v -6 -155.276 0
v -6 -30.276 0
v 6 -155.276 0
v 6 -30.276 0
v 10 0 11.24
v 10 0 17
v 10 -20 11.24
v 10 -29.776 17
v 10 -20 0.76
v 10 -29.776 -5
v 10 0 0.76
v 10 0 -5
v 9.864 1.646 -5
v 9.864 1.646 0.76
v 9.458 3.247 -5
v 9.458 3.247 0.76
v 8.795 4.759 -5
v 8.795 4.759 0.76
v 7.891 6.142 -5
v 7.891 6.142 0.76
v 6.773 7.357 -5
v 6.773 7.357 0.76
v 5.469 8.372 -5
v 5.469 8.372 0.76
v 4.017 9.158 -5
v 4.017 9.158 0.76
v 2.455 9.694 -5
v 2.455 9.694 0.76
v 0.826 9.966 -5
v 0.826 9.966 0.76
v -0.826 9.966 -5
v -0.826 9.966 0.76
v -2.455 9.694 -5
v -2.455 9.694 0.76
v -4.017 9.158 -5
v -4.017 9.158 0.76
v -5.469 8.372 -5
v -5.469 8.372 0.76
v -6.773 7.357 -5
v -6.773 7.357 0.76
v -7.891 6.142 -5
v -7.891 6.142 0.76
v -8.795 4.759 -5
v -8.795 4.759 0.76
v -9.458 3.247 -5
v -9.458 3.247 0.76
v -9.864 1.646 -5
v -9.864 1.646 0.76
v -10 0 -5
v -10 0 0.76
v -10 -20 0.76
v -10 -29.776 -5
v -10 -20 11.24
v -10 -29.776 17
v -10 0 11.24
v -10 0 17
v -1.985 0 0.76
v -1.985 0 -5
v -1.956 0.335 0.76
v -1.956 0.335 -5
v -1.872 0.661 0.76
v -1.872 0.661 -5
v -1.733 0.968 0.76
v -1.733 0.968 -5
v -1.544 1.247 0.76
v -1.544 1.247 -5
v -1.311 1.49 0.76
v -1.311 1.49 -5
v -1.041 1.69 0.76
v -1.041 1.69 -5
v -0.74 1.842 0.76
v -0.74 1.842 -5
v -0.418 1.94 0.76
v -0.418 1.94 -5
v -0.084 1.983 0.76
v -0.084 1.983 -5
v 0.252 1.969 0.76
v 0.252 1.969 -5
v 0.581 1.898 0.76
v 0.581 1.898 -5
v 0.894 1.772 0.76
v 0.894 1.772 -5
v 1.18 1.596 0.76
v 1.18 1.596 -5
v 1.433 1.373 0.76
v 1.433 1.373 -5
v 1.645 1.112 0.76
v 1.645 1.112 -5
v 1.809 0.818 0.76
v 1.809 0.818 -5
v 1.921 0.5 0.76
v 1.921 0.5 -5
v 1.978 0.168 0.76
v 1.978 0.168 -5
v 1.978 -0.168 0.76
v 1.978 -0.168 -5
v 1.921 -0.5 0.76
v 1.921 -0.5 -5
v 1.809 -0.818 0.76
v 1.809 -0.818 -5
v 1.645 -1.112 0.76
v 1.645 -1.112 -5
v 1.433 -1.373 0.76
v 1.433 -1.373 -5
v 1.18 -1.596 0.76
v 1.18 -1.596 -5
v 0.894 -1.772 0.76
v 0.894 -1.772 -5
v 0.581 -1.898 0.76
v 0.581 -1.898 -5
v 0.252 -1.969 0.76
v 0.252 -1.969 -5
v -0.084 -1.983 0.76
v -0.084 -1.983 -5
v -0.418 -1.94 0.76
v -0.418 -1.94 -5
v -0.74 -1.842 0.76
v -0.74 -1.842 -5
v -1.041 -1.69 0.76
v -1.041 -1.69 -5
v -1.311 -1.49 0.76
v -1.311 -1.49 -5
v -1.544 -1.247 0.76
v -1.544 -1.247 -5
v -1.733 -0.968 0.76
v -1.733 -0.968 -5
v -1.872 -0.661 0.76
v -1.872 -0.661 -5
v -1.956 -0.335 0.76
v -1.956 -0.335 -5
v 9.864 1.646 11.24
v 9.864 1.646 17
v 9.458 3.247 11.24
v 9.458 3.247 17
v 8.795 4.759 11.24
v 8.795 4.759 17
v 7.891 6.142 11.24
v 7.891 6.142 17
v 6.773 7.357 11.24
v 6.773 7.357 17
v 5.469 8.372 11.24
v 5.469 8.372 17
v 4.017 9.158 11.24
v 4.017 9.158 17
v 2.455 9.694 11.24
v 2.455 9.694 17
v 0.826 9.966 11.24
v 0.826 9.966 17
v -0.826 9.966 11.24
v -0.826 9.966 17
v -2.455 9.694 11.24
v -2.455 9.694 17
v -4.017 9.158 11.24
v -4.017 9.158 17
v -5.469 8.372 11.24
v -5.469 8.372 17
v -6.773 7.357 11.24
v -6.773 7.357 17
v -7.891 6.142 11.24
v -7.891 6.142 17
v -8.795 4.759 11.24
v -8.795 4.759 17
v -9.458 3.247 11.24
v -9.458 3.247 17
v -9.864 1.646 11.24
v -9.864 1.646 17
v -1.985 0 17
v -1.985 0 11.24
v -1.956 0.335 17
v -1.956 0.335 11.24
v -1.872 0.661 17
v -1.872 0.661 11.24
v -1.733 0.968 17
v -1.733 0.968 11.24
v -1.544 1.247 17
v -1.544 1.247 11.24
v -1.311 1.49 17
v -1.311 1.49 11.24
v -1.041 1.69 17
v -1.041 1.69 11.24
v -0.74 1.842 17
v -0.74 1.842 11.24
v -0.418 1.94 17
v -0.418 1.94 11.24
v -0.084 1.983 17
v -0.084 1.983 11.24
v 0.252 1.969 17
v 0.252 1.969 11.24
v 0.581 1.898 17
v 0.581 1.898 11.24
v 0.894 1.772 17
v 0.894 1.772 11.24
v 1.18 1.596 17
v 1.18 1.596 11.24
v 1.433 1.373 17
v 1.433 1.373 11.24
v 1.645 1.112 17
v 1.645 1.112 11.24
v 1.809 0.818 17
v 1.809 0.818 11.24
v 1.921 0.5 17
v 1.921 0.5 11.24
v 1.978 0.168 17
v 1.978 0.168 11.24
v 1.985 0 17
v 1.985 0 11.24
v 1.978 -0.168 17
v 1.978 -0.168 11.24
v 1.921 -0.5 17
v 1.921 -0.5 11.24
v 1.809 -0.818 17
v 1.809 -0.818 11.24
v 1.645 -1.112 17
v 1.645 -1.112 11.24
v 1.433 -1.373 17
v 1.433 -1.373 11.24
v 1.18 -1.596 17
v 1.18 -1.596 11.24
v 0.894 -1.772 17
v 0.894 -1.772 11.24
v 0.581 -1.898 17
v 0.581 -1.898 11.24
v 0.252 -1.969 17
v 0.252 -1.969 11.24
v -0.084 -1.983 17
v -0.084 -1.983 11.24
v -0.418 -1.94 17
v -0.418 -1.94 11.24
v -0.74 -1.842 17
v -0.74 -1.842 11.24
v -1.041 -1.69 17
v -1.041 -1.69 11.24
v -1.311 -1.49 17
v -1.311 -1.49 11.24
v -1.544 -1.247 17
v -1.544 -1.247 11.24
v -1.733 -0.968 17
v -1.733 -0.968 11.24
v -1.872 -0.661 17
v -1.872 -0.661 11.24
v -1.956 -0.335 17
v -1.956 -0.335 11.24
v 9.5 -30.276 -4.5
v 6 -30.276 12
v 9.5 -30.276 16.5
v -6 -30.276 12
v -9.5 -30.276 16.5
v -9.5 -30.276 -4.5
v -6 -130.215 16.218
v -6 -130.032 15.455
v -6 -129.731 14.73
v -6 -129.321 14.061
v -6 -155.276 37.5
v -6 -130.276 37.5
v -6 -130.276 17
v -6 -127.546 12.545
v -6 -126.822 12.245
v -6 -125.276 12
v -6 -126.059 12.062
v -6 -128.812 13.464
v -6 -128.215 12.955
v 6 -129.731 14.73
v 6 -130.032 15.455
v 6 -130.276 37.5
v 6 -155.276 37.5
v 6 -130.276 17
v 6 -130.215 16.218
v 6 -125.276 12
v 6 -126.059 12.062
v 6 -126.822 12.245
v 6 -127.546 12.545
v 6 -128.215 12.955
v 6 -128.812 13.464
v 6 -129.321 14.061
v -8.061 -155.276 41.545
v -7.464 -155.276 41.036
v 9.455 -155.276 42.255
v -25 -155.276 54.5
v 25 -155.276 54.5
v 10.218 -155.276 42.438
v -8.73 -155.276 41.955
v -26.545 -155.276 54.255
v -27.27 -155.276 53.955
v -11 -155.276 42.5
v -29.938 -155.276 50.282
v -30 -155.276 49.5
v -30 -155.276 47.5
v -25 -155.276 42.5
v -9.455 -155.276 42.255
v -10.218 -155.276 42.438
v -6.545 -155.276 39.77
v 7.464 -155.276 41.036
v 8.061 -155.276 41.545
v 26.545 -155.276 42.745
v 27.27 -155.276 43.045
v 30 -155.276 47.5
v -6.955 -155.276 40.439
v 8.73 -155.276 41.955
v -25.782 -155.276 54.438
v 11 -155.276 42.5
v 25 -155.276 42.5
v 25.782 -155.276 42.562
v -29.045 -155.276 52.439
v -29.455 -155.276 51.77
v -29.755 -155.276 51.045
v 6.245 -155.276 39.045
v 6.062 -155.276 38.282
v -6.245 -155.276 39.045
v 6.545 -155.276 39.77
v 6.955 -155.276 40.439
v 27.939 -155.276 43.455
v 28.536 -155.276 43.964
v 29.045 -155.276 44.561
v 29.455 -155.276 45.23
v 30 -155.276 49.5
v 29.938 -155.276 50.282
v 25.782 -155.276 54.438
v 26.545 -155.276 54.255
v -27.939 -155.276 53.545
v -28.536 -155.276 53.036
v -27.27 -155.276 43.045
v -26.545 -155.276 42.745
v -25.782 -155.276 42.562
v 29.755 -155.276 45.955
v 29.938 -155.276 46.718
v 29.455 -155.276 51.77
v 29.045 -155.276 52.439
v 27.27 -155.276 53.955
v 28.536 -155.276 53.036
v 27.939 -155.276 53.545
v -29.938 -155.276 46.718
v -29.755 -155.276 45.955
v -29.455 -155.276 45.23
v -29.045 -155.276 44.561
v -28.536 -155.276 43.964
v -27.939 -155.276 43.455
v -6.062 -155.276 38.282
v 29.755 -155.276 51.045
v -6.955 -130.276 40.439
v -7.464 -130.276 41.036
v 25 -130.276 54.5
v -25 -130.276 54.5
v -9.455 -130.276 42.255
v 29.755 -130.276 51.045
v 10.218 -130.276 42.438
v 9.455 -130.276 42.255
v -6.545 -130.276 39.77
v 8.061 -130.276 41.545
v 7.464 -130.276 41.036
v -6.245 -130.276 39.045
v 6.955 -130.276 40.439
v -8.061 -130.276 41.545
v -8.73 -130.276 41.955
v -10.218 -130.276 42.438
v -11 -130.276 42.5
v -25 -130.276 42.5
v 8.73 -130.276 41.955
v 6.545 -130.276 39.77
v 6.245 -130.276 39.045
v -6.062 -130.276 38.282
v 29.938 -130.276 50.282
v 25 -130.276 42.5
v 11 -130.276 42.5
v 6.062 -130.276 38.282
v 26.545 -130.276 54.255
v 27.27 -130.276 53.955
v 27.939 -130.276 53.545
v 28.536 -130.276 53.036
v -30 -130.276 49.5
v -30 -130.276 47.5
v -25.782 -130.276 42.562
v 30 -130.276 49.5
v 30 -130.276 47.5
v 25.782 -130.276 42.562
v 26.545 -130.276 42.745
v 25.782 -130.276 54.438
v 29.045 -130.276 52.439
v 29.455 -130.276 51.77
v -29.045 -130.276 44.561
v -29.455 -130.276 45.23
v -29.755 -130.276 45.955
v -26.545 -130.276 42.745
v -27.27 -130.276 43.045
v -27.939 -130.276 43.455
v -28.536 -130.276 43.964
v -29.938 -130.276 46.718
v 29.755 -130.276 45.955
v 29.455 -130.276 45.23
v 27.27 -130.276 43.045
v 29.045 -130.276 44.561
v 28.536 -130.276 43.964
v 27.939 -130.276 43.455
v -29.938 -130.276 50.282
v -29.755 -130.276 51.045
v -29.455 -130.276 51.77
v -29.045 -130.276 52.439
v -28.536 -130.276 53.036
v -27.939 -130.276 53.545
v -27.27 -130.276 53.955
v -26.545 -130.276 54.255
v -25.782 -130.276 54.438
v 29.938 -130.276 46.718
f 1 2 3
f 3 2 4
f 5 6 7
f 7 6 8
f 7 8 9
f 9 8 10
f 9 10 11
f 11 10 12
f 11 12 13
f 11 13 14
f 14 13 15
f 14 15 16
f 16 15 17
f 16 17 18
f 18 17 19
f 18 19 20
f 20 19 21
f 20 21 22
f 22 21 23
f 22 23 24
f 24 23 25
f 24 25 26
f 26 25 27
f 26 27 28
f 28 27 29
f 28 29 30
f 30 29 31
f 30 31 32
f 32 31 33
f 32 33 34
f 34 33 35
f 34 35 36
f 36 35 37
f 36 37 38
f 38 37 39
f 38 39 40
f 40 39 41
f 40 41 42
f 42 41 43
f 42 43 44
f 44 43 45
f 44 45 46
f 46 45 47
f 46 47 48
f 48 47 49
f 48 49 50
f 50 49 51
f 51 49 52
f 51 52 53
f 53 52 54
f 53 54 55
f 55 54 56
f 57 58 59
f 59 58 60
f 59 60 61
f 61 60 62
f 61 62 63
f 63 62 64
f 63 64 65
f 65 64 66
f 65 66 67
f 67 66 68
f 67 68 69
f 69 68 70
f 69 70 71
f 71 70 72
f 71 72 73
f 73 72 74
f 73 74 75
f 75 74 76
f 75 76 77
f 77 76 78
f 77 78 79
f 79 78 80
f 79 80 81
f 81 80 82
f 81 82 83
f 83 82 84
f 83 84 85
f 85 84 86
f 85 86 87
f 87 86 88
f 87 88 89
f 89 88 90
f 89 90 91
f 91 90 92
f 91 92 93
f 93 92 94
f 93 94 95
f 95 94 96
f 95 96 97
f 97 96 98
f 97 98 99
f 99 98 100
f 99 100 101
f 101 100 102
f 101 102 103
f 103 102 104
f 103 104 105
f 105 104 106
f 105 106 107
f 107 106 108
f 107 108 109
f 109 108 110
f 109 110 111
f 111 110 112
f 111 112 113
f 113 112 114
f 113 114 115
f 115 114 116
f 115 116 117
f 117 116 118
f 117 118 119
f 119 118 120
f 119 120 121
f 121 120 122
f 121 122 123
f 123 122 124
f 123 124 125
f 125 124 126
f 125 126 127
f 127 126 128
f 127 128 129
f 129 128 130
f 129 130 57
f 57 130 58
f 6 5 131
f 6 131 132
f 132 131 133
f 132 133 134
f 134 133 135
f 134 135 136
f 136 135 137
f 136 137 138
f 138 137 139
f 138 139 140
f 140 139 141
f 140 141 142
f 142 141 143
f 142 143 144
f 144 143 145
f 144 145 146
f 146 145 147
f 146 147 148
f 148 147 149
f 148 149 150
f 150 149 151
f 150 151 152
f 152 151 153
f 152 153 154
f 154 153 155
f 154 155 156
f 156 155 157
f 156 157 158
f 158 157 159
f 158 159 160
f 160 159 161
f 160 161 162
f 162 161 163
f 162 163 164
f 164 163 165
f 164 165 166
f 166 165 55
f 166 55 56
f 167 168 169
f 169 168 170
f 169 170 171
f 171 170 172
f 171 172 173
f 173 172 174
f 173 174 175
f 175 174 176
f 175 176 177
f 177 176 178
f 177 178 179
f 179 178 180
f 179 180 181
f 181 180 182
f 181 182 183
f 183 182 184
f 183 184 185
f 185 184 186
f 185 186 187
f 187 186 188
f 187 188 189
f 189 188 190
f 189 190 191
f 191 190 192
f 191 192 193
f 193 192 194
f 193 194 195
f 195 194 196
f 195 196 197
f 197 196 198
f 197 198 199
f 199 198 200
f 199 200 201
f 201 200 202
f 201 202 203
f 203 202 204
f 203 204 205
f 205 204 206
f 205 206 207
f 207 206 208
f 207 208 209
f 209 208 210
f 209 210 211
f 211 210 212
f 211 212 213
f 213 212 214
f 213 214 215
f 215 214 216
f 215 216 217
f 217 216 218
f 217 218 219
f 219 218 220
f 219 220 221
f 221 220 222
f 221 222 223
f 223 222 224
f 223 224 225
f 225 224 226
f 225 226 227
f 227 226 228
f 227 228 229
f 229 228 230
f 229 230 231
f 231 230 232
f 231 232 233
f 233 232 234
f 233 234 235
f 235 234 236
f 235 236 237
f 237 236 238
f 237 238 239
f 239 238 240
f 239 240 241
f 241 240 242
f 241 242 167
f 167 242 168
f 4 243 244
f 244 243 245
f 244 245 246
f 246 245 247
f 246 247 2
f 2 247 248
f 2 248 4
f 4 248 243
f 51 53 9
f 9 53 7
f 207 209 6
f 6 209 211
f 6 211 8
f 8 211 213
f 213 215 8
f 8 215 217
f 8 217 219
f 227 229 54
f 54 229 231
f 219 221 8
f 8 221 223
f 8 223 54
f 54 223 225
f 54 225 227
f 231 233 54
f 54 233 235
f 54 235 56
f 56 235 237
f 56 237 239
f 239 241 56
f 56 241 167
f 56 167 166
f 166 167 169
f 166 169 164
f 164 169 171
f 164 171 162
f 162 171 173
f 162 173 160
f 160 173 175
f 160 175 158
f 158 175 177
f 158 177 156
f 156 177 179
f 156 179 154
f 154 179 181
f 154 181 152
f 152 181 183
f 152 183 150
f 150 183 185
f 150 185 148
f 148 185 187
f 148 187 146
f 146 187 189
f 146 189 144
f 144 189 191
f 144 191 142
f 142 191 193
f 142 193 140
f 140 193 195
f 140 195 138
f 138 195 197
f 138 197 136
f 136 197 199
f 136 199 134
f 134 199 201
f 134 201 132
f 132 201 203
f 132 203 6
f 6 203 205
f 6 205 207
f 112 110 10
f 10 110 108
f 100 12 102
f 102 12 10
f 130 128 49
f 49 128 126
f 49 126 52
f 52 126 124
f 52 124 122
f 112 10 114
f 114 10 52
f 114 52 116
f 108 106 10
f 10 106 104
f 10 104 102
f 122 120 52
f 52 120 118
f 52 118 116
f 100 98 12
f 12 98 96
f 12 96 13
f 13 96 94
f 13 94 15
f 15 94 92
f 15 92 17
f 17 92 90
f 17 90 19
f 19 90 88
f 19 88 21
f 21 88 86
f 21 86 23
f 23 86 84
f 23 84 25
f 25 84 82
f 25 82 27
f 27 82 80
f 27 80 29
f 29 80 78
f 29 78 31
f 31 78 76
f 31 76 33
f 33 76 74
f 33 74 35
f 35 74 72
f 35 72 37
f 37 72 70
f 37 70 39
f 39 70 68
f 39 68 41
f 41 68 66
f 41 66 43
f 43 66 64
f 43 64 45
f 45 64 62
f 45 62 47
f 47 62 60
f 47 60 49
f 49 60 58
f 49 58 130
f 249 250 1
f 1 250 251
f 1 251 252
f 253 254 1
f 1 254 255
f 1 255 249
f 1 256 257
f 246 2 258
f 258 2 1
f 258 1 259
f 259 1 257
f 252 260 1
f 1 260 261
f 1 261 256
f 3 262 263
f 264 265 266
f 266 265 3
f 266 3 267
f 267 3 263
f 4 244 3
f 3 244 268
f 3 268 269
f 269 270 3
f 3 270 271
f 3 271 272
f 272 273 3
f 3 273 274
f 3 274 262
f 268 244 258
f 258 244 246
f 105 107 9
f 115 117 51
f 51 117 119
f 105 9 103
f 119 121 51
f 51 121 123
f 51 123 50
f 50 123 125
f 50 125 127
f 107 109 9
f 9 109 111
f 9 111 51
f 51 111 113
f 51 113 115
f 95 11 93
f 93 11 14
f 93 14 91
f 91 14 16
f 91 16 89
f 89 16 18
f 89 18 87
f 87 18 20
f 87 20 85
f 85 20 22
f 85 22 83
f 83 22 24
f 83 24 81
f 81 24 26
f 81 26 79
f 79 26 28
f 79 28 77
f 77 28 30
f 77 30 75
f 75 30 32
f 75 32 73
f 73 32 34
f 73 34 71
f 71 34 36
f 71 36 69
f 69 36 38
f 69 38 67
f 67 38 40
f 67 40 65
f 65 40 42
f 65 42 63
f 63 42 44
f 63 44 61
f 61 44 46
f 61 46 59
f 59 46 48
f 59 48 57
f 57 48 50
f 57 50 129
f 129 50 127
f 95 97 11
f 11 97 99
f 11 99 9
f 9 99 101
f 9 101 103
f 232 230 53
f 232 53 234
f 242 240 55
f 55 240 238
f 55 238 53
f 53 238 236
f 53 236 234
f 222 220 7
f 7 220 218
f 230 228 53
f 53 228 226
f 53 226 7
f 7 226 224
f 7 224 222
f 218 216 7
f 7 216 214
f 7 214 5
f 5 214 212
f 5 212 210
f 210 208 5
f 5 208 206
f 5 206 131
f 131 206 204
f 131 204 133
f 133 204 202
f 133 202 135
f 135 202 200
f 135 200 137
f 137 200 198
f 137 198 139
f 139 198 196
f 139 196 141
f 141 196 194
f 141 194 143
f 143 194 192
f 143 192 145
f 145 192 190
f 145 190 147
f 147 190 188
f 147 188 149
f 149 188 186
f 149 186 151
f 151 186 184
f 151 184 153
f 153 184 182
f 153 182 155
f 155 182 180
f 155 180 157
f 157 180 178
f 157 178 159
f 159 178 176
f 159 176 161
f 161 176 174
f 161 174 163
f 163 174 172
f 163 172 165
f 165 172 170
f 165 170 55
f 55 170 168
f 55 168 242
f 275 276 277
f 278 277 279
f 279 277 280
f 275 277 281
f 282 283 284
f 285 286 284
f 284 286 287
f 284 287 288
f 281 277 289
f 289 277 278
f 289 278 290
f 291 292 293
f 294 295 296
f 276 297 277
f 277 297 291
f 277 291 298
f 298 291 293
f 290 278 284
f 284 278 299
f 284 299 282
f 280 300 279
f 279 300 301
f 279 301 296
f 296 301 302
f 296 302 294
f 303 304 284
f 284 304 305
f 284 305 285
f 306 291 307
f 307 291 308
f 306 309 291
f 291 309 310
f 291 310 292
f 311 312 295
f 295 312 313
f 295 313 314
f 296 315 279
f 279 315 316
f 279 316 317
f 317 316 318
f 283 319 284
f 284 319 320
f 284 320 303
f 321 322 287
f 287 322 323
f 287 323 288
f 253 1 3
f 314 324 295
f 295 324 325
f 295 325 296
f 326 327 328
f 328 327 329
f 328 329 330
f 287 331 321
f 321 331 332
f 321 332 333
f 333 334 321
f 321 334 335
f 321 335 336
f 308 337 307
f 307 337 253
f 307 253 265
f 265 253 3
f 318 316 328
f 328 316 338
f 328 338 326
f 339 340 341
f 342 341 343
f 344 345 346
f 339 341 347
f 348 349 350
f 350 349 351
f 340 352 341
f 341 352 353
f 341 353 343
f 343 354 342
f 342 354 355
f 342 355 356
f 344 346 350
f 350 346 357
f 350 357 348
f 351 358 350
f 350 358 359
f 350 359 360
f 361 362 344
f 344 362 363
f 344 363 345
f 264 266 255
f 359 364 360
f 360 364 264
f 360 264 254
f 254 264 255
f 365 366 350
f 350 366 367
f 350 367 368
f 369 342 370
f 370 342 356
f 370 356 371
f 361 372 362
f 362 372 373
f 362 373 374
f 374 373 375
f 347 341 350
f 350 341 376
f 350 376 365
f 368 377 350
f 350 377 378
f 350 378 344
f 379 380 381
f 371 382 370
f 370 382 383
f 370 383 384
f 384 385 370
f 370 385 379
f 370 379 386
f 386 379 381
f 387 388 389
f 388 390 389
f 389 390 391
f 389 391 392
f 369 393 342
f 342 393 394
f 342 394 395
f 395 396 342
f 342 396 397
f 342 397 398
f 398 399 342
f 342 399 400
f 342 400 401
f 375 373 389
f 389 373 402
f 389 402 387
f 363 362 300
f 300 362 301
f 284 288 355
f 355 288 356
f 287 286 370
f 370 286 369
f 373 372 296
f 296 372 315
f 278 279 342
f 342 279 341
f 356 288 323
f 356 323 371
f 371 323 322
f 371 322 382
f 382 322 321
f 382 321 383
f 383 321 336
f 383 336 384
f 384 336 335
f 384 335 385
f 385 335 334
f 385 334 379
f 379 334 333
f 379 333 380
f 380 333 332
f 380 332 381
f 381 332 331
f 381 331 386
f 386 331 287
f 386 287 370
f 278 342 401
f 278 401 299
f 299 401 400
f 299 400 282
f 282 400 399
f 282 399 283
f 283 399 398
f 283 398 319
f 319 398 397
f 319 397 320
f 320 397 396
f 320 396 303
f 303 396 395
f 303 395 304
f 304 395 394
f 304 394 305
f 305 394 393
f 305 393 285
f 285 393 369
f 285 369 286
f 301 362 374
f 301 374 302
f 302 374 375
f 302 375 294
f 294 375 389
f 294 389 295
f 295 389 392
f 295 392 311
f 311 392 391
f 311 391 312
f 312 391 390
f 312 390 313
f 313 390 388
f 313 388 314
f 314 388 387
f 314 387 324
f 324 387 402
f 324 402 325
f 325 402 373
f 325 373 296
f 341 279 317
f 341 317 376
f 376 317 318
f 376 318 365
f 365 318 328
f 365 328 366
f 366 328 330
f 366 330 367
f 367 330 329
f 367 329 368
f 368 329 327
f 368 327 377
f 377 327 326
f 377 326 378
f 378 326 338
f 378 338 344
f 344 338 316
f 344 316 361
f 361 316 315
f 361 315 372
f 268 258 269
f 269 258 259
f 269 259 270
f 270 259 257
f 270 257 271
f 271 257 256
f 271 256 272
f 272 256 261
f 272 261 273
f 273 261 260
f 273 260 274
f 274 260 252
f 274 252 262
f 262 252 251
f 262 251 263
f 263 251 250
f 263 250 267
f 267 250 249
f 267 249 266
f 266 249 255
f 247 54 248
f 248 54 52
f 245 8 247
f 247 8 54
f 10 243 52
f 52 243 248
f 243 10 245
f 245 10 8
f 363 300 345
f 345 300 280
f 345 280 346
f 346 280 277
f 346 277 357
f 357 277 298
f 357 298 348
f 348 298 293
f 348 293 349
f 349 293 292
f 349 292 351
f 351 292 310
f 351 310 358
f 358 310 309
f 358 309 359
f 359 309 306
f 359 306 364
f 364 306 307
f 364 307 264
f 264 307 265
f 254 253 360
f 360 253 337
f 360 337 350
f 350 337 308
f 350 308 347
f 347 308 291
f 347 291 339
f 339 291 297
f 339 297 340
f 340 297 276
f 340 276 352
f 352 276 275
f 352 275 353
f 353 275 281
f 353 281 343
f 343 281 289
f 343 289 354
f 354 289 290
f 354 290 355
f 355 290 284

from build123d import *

# Parameters (mm, degrees)
SKETCH_1_R                = 1.985
EXTRUDE_1_DEPTH           = 12
CUT_EXTRUDE_1_DEPTH       = 21
CUT_EXTRUDE_6_DEPTH       = 21
SKETCH_12_R               = 1.985
EXTRUDE_11_DEPTH          = 5
SKETCH_13_R               = 1.985
EXTRUDE_12_DEPTH          = 5
SKETCH_14_W               = 2.04
SKETCH_14_H               = 20
CUT_EXTRUDE_7_DEPTH       = 21
SKETCH_15_W               = 6
SKETCH_15_H               = 6
EXTRUDE_13_DEPTH          = 100
EXTRUDE_14_DEPTH          = 25
EXTRUDE_19_DEPTH          = 7
SKETCH_31_W               = 5
SKETCH_31_H               = 31
EXTRUDE_20_DEPTH          = 45
EXTRUDE_21_DEPTH          = 31
CUT_EXTRUDE_16_DEPTH      = 60
SKETCH_38_W               = 0.2
SKETCH_38_H               = 20
CUT_EXTRUDE_18_DEPTH      = 187
FILLET_2_R                = 10
EXTRUDE_22_DEPTH          = 12
EXTRUDE_23_DEPTH          = 12
SKETCH_46_W               = 12
SKETCH_46_H               = 6
EXTRUDE_24_DEPTH          = 72
SKETCH_45_W               = 12
SKETCH_45_H               = 12
EXTRUDE_26_DEPTH          = 34.5
CUT_EXTRUDE_22_DEPTH      = 56
CUT_EXTRUDE_22_DEPTH_BACK = 183
SKETCH_52_W               = 276.860759989
SKETCH_52_H               = 117.184268482
CUT_EXTRUDE_24_DEPTH      = 26
EXTRUDE_27_DEPTH          = 12
CUT_EXTRUDE_27_DEPTH      = 12
SKETCH_59_W               = 12
SKETCH_59_H               = 29.920197086
EXTRUDE_29_DEPTH          = 25
SKETCH_60_W               = 24
SKETCH_60_H               = 12
EXTRUDE_30_DEPTH          = 12
EXTRUDE_30_DEPTH_BACK     = 25
SKETCH_61_W               = 281.096086155
SKETCH_61_H               = 164.782481761
CUT_EXTRUDE_30_DEPTH      = 50
CUT_EXTRUDE_30_DEPTH_BACK = 58
CUT_EXTRUDE_34_DEPTH      = 25
CUT_EXTRUDE_34_DEPTH_BACK = 37
CUT_EXTRUDE_36_DEPTH      = 26
SKETCH_70_W               = 12
SKETCH_70_H               = 25
CUT_EXTRUDE_37_DEPTH      = 4
SKETCH_71_W               = 24
SKETCH_71_H               = 25
SKETCH_71_W_2             = 12
EXTRUDE_31_DEPTH          = 12
FILLET_3_R                = 5
FILLET_4_R                = 5
CHAMFER_1_SIZE            = 0.5
FILLET_7_R                = 5


with BuildPart() as part:
    # 草圖1 → 填料-伸長1 (new body)
    with BuildSketch(Plane.XY):
        with BuildLine():
            Line((-10, 0), (-10, -30.276417548))
            Line((-10, -30.276417548), (10, -30.276417548))
            Line((10, -30.276417548), (10, 0))
            ThreePointArc((10, 0), (0, 10), (-10, 0))
        make_face()
        Circle(SKETCH_1_R, mode=Mode.SUBTRACT)
    extrude(amount=EXTRUDE_1_DEPTH)

    # 草圖2 → 除料-伸長1 (cut, through all)
    with BuildSketch(Plane(origin=(10, 0, 0), x_dir=(0, 0, -1), z_dir=(1, 0, 0))):
        Polygon((-9, 0), (-6, 0), (-3, 0), (-3, 15.780779257), (-9, 15.780779257), align=None)
        Polygon((-3, 0), (-6, 0), (-9, 0), (-8.60053373, -20), (-3, -20), align=None)
    extrude(amount=-CUT_EXTRUDE_1_DEPTH, mode=Mode.SUBTRACT)

    # 草圖11 → 除料-伸長6 (cut, through all)
    with BuildSketch(Plane(origin=(10, 0, 0), x_dir=(0, 0, -1), z_dir=(1, 0, 0))):
        Polygon((-9, 0), (-9, -20), (-8.60053373, -20), align=None)
    extrude(amount=-CUT_EXTRUDE_6_DEPTH, mode=Mode.SUBTRACT)

    # 草圖12 → 填料-伸長11 (add)
    with BuildSketch(Plane.XY.offset(12)):
        with BuildLine():
            ThreePointArc((10, 0), (0, 10), (-10, 0))
            ThreePointArc((-10, 0), (0, -10), (10, 0))
        make_face()
        Circle(SKETCH_12_R, mode=Mode.SUBTRACT)
        with BuildLine():
            ThreePointArc((10, 0), (0, -10), (-10, 0))
            Line((-10, 0), (-10, -30.276417548))
            Line((-10, -30.276417548), (10, -30.276417548))
            Line((10, -30.276417548), (10, 0))
        make_face()
    extrude(amount=EXTRUDE_11_DEPTH)

    # 草圖13 → 填料-伸長12 (add)
    with BuildSketch(Plane(origin=(0, 0, 0), x_dir=(-1, 0, 0), z_dir=(0, 0, -1))):
        with BuildLine():
            ThreePointArc((10, 0), (0, 10), (-10, 0))
            ThreePointArc((-10, 0), (0, -10), (10, 0))
        make_face()
        Circle(SKETCH_13_R, mode=Mode.SUBTRACT)
        with BuildLine():
            ThreePointArc((10, 0), (0, -10), (-10, 0))
            Line((-10, 0), (-10, -30.276417548))
            Line((-10, -30.276417548), (10, -30.276417548))
            Line((10, -30.276417548), (10, 0))
        make_face()
    extrude(amount=EXTRUDE_12_DEPTH)

    # 草圖14 → 除料-伸長7 (cut, through all)
    with BuildSketch(Plane.ZY.offset(10)):
        Polygon((3, 0), (3, -20), (9, -20), (9, 0), (11.04, 0), (11.04, 10), (3, 10), (0.96, 10), (0.96, 0), align=None)
        with Locations((1.98, -10)):
            Rectangle(SKETCH_14_W, SKETCH_14_H)
        with Locations((10.02, -10)):
            Rectangle(SKETCH_14_W, SKETCH_14_H)
    extrude(amount=-CUT_EXTRUDE_7_DEPTH, mode=Mode.SUBTRACT)

    # 草圖15 → 填料-伸長13 (add)
    with BuildSketch(Plane.XZ.offset(30.276417548)):
        with Locations((3, 9)):
            Rectangle(SKETCH_15_W, SKETCH_15_H)
        with Locations((-3, 9)):
            Rectangle(SKETCH_15_W, SKETCH_15_H)
        with Locations((3, 3)):
            Rectangle(SKETCH_15_W, SKETCH_15_H)
        with Locations((-3, 3)):
            Rectangle(SKETCH_15_W, SKETCH_15_H)
    extrude(amount=EXTRUDE_13_DEPTH)

    # 草圖16 → 填料-伸長14 (add)
    with BuildSketch(Plane.XZ.offset(130.276417548)):
        Polygon((176, -54), (176, 6), (176, 96), (-61, 96), (-61, 6), (-61, -54), align=None)
    extrude(amount=EXTRUDE_14_DEPTH)

    # 草圖30 → 填料-伸長19 (add)
    with BuildSketch(Plane(origin=(0, -130.276417548, 0), x_dir=(1, 0, 0), z_dir=(0, 1, 0))):
        Polygon((119, -68), (139, -68), (139, -37), (129, -37), (119, -37), align=None)
    extrude(amount=EXTRUDE_19_DEPTH)

    # 草圖31 → 填料-伸長20 (add)
    with BuildSketch(Plane(origin=(0, -130.276417548, 0), x_dir=(1, 0, 0), z_dir=(0, 1, 0))):
        Polygon((119, -68), (114, -68), (114, -37.129725066), (119, -37), align=None)
        with Locations((141.5, -52.5)):
            Rectangle(SKETCH_31_W, SKETCH_31_H)
    extrude(amount=EXTRUDE_20_DEPTH)

    # 草圖33 → 填料-伸長21 (add)
    with BuildSketch(Plane.XY.offset(68)):
        Polygon((159, -130.276417548), (144, -130.276417548), (144, -85.276417548), align=None)
        Polygon((114, -85.276417548), (99, -130.276417548), (114, -130.276417548), align=None)
    extrude(amount=-EXTRUDE_21_DEPTH)

    # 草圖35 → 除料-伸長16 (cut, through all)
    with BuildSketch(Plane(origin=(0, 0, 37), x_dir=(-1, 0, 0), z_dir=(0, 0, -1))):
        with BuildLine():
            ThreePointArc((-132.95, -126.776417548), (-134.95, -124.776417548), (-136.95, -126.776417548))
            Line((-136.95, -126.776417548), (-132.95, -126.776417548))
        make_face()
        with BuildLine():
            Line((-132.95, -126.776417548), (-136.95, -126.776417548))
            ThreePointArc((-136.95, -126.776417548), (-134.95, -128.776417548), (-132.95, -126.776417548))
        make_face()
        with BuildLine():
            ThreePointArc((-121.05, -126.776417548), (-123.05, -124.776417548), (-125.05, -126.776417548))
            Line((-125.05, -126.776417548), (-121.05, -126.776417548))
        make_face()
        with BuildLine():
            Line((-121.05, -126.776417548), (-125.05, -126.776417548))
            ThreePointArc((-125.05, -126.776417548), (-123.05, -128.776417548), (-121.05, -126.776417548))
        make_face()
    extrude(amount=-CUT_EXTRUDE_16_DEPTH, mode=Mode.SUBTRACT)

    # 草圖38 → 除料-伸長18 (cut, through all)
    with BuildSketch(Plane.ZY.offset(10)):
        Polygon((11.04, 10), (0.96, 10), (0.76, 10), (0.76, 0), (0.96, 0), (0.96, -20), (11.04, -20), (11.04, 0), (11.24, 0), (11.24, 10), align=None)
        with Locations((0.86, -10)):
            Rectangle(SKETCH_38_W, SKETCH_38_H)
        with Locations((11.14, -10)):
            Rectangle(SKETCH_38_W, SKETCH_38_H)
    extrude(amount=-CUT_EXTRUDE_18_DEPTH, mode=Mode.SUBTRACT)

    # 圓角2
    fillet_2_edges = [part.edges().sort_by_distance(p)[0] for p in [
        (-61, -142.776417548, 96),
        (-61, -142.776417548, -54),
        (176, -142.776417548, -54),
        (176, -142.776417548, 96),
    ]]
    fillet(fillet_2_edges, radius=FILLET_2_R)

    # 草圖39 → 填料-伸長22 (add)
    with BuildSketch(Plane(origin=(0, 0, 0), x_dir=(-1, 0, 0), z_dir=(0, 0, -1))):
        Polygon((-6, -80.276417548), (-16, -130.276417548), (-6, -130.276417548), align=None)
        Polygon((6, -80.276417548), (16, -130.276417548), (6, -130.276417548), align=None)
    extrude(amount=-EXTRUDE_22_DEPTH)

    # 草圖40 → 填料-伸長23 (add)
    with BuildSketch(Plane(origin=(6, 0, 0), x_dir=(0, 0, -1), z_dir=(1, 0, 0))):
        Polygon((-12, -80.276417548), (-22, -130.276417548), (-12, -130.276417548), align=None)
        Polygon((0, -80.276417548), (11.303196885, -130.276417548), (0, -130.276417548), align=None)
    extrude(amount=-EXTRUDE_23_DEPTH)

    # 草圖46 → 填料-伸長24 (add)
    with BuildSketch(Plane(origin=(0, -130.276417548, 0), x_dir=(1, 0, 0), z_dir=(0, 1, 0))):
        with Locations((0, -55.5)):
            Rectangle(SKETCH_46_W, SKETCH_46_H)
        with Locations((0, -49.5)):
            Rectangle(SKETCH_46_W, SKETCH_46_H)
    extrude(amount=EXTRUDE_24_DEPTH)

    # 草圖45 → 填料-伸長26 (add)
    with BuildSketch(Plane.XY.offset(12)):
        with Locations((0, -64.276417548)):
            Rectangle(SKETCH_45_W, SKETCH_45_H)
    extrude(amount=EXTRUDE_26_DEPTH)

    # 草圖50 → 除料-伸長22 (cut, two sides)
    with BuildSketch(Plane.ZY.offset(6)) as cut_extrude_22_sk:
        Polygon((12, -70.276417548), (0, -70.276417548), (-67.39172142, -119.054967007), (-58.508131327, -164.361276479), (22, -164.361276479), (22, -130.276417548), (21.222089752, -86.407773417), align=None)
    extrude(amount=CUT_EXTRUDE_22_DEPTH, mode=Mode.SUBTRACT)
    extrude(cut_extrude_22_sk.sketch, amount=-CUT_EXTRUDE_22_DEPTH_BACK, mode=Mode.SUBTRACT)

    # 草圖52 → 除料-伸長24 (cut, through all)
    with BuildSketch(Plane(origin=(0, -130.276417548, 0), x_dir=(1, 0, 0), z_dir=(0, 1, 0))):
        with Locations((58.121400767, -52.5)):
            Rectangle(SKETCH_52_W, SKETCH_52_H)
        with BuildLine():
            Line((-17.31105843, -29.920197086), (148.30684395, -29.920197086))
            ThreePointArc((148.30684395, -29.920197086), (170.886646864, -52.5), (148.30684395, -75.079802914))
            Line((148.30684395, -75.079802914), (-17.31105843, -75.079802914))
            ThreePointArc((-17.31105843, -75.079802914), (-39.890861345, -52.5), (-17.31105843, -29.920197086))
        make_face(mode=Mode.SUBTRACT)
    extrude(amount=-CUT_EXTRUDE_24_DEPTH, mode=Mode.SUBTRACT)

    # 草圖57 → 填料-伸長27 (add)
    with BuildSketch(Plane.ZY.offset(6)):
        Polygon((12, -70.276417548), (0, -70.276417548), (0, -130.276417548), (46.5, -130.276417548), (46.5, -118.276417548), (45.651807849, -118.276417548), (12, -118.276417548), align=None)
    extrude(amount=-EXTRUDE_27_DEPTH)

    # 草圖58 → 除料-伸長27 (cut)
    with BuildSketch(Plane.ZY.offset(6)):
        Polygon((12, -50.353469845), (12, -118.276417548), (97.717444729, -118.276417548), (103.225359423, -26.791834768), align=None)
    extrude(amount=-CUT_EXTRUDE_27_DEPTH, mode=Mode.SUBTRACT)

    # 草圖59 → 填料-伸長29 (add)
    with BuildSketch(Plane.XZ.offset(130.276417548)):
        with Locations((0, 14.960098543)):
            Rectangle(SKETCH_59_W, SKETCH_59_H)
    extrude(amount=EXTRUDE_29_DEPTH)

    # 草圖60 → 填料-伸長30 (add, two sides)
    with BuildSketch(Plane(origin=(0, -130.276417548, 0), x_dir=(1, 0, 0), z_dir=(0, 1, 0))) as extrude_30_sk:
        with Locations((18, -52.5)):
            Rectangle(SKETCH_60_W, SKETCH_60_H)
        with Locations((-18, -52.5)):
            Rectangle(SKETCH_60_W, SKETCH_60_H)
    extrude(amount=EXTRUDE_30_DEPTH)
    extrude(extrude_30_sk.sketch, amount=-EXTRUDE_30_DEPTH_BACK)

    # 草圖61 → 除料-伸長30 (cut, two sides)
    with BuildSketch(Plane(origin=(0, -130.276417548, 0), x_dir=(1, 0, 0), z_dir=(0, 1, 0))) as cut_extrude_30_sk:
        with Locations((53.510433176, -39.675707669)):
            Rectangle(SKETCH_61_W, SKETCH_61_H)
        Polygon((6, -29.920197086), (6, -46.5), (30, -46.5), (30, -58.5), (-30, -58.5), (-30, -46.5), (-6, -46.5), (-6, -29.920197086), (-44.589128485, 5.230499952), (-9.133666374, 30.61836171), (-3.443283566, 30.61836171), (36.57596573, 16.820537818), align=None, mode=Mode.SUBTRACT)
    extrude(amount=CUT_EXTRUDE_30_DEPTH, mode=Mode.SUBTRACT)
    extrude(cut_extrude_30_sk.sketch, amount=-CUT_EXTRUDE_30_DEPTH_BACK, mode=Mode.SUBTRACT)

    # 草圖64 → 除料-伸長34 (cut, two sides)
    with BuildSketch(Plane.ZY.offset(6)) as cut_extrude_34_sk:
        Polygon((12, -130.276417548), (58.5, -130.276417548), (58.5, -118.447183966), (58.5, -114.238678803), (12, -115.089037544), align=None)
    extrude(amount=CUT_EXTRUDE_34_DEPTH, mode=Mode.SUBTRACT)
    extrude(cut_extrude_34_sk.sketch, amount=-CUT_EXTRUDE_34_DEPTH_BACK, mode=Mode.SUBTRACT)

    # 草圖69 → 除料-伸長36 (cut, through all)
    with BuildSketch(Plane(origin=(0, -130.276417548, 0), x_dir=(1, 0, 0), z_dir=(0, 1, 0))):
        Polygon((-6, -46.5), (6, -46.5), (66.848936529, -34.461710071), (66.848936529, -79.240565932), (-96.240370082, -76.176749478), (-86.106207966, -40.480855035), (-50.518801466, -30.455180862), align=None)
    extrude(amount=-CUT_EXTRUDE_36_DEPTH, mode=Mode.SUBTRACT)

    # 草圖70 → 除料-伸長37 (cut)
    with BuildSketch(Plane.XY.offset(46.5)):
        with Locations((0, -142.776417548)):
            Rectangle(SKETCH_70_W, SKETCH_70_H)
    extrude(amount=-CUT_EXTRUDE_37_DEPTH, mode=Mode.SUBTRACT)

    # 草圖71 → 填料-伸長31 (add)
    with BuildSketch(Plane.XY.offset(42.5)):
        with Locations((-18, -142.776417548)):
            Rectangle(SKETCH_71_W, SKETCH_71_H)
        with Locations((0, -142.776417548)):
            Rectangle(SKETCH_71_W_2, SKETCH_71_H)
        with Locations((18, -142.776417548)):
            Rectangle(SKETCH_71_W, SKETCH_71_H)
    extrude(amount=EXTRUDE_31_DEPTH)

    # 圓角3
    fillet_3_edges = [part.edges().sort_by_distance(p)[0] for p in [
        (30, -142.776417548, 42.5),
        (-30, -142.776417548, 42.5),
        (-30, -142.776417548, 54.5),
        (30, -142.776417548, 54.5),
    ]]
    fillet(fillet_3_edges, radius=FILLET_3_R)

    # 圓角4
    fillet_4_edges = [part.edges().sort_by_distance(p)[0] for p in [
        (0, -130.276417548, 12),
    ]]
    fillet(fillet_4_edges, radius=FILLET_4_R)

    # 導角1
    chamfer_1_edges = [part.edges().sort_by_distance(p)[0] for p in [
        (10, -30.276417548, 6),
        (-10, -30.276417548, 6),
        (0, -30.276417548, 17),
        (0, -30.276417548, -5),
    ]]
    chamfer(chamfer_1_edges, length=CHAMFER_1_SIZE)

    # 圓角7
    fillet_7_edges = [part.edges().sort_by_distance(p)[0] for p in [
        (6, -142.776417548, 42.5),
        (-6, -142.776417548, 42.5),
    ]]
    fillet(fillet_7_edges, radius=FILLET_7_R)


solid = part.part
